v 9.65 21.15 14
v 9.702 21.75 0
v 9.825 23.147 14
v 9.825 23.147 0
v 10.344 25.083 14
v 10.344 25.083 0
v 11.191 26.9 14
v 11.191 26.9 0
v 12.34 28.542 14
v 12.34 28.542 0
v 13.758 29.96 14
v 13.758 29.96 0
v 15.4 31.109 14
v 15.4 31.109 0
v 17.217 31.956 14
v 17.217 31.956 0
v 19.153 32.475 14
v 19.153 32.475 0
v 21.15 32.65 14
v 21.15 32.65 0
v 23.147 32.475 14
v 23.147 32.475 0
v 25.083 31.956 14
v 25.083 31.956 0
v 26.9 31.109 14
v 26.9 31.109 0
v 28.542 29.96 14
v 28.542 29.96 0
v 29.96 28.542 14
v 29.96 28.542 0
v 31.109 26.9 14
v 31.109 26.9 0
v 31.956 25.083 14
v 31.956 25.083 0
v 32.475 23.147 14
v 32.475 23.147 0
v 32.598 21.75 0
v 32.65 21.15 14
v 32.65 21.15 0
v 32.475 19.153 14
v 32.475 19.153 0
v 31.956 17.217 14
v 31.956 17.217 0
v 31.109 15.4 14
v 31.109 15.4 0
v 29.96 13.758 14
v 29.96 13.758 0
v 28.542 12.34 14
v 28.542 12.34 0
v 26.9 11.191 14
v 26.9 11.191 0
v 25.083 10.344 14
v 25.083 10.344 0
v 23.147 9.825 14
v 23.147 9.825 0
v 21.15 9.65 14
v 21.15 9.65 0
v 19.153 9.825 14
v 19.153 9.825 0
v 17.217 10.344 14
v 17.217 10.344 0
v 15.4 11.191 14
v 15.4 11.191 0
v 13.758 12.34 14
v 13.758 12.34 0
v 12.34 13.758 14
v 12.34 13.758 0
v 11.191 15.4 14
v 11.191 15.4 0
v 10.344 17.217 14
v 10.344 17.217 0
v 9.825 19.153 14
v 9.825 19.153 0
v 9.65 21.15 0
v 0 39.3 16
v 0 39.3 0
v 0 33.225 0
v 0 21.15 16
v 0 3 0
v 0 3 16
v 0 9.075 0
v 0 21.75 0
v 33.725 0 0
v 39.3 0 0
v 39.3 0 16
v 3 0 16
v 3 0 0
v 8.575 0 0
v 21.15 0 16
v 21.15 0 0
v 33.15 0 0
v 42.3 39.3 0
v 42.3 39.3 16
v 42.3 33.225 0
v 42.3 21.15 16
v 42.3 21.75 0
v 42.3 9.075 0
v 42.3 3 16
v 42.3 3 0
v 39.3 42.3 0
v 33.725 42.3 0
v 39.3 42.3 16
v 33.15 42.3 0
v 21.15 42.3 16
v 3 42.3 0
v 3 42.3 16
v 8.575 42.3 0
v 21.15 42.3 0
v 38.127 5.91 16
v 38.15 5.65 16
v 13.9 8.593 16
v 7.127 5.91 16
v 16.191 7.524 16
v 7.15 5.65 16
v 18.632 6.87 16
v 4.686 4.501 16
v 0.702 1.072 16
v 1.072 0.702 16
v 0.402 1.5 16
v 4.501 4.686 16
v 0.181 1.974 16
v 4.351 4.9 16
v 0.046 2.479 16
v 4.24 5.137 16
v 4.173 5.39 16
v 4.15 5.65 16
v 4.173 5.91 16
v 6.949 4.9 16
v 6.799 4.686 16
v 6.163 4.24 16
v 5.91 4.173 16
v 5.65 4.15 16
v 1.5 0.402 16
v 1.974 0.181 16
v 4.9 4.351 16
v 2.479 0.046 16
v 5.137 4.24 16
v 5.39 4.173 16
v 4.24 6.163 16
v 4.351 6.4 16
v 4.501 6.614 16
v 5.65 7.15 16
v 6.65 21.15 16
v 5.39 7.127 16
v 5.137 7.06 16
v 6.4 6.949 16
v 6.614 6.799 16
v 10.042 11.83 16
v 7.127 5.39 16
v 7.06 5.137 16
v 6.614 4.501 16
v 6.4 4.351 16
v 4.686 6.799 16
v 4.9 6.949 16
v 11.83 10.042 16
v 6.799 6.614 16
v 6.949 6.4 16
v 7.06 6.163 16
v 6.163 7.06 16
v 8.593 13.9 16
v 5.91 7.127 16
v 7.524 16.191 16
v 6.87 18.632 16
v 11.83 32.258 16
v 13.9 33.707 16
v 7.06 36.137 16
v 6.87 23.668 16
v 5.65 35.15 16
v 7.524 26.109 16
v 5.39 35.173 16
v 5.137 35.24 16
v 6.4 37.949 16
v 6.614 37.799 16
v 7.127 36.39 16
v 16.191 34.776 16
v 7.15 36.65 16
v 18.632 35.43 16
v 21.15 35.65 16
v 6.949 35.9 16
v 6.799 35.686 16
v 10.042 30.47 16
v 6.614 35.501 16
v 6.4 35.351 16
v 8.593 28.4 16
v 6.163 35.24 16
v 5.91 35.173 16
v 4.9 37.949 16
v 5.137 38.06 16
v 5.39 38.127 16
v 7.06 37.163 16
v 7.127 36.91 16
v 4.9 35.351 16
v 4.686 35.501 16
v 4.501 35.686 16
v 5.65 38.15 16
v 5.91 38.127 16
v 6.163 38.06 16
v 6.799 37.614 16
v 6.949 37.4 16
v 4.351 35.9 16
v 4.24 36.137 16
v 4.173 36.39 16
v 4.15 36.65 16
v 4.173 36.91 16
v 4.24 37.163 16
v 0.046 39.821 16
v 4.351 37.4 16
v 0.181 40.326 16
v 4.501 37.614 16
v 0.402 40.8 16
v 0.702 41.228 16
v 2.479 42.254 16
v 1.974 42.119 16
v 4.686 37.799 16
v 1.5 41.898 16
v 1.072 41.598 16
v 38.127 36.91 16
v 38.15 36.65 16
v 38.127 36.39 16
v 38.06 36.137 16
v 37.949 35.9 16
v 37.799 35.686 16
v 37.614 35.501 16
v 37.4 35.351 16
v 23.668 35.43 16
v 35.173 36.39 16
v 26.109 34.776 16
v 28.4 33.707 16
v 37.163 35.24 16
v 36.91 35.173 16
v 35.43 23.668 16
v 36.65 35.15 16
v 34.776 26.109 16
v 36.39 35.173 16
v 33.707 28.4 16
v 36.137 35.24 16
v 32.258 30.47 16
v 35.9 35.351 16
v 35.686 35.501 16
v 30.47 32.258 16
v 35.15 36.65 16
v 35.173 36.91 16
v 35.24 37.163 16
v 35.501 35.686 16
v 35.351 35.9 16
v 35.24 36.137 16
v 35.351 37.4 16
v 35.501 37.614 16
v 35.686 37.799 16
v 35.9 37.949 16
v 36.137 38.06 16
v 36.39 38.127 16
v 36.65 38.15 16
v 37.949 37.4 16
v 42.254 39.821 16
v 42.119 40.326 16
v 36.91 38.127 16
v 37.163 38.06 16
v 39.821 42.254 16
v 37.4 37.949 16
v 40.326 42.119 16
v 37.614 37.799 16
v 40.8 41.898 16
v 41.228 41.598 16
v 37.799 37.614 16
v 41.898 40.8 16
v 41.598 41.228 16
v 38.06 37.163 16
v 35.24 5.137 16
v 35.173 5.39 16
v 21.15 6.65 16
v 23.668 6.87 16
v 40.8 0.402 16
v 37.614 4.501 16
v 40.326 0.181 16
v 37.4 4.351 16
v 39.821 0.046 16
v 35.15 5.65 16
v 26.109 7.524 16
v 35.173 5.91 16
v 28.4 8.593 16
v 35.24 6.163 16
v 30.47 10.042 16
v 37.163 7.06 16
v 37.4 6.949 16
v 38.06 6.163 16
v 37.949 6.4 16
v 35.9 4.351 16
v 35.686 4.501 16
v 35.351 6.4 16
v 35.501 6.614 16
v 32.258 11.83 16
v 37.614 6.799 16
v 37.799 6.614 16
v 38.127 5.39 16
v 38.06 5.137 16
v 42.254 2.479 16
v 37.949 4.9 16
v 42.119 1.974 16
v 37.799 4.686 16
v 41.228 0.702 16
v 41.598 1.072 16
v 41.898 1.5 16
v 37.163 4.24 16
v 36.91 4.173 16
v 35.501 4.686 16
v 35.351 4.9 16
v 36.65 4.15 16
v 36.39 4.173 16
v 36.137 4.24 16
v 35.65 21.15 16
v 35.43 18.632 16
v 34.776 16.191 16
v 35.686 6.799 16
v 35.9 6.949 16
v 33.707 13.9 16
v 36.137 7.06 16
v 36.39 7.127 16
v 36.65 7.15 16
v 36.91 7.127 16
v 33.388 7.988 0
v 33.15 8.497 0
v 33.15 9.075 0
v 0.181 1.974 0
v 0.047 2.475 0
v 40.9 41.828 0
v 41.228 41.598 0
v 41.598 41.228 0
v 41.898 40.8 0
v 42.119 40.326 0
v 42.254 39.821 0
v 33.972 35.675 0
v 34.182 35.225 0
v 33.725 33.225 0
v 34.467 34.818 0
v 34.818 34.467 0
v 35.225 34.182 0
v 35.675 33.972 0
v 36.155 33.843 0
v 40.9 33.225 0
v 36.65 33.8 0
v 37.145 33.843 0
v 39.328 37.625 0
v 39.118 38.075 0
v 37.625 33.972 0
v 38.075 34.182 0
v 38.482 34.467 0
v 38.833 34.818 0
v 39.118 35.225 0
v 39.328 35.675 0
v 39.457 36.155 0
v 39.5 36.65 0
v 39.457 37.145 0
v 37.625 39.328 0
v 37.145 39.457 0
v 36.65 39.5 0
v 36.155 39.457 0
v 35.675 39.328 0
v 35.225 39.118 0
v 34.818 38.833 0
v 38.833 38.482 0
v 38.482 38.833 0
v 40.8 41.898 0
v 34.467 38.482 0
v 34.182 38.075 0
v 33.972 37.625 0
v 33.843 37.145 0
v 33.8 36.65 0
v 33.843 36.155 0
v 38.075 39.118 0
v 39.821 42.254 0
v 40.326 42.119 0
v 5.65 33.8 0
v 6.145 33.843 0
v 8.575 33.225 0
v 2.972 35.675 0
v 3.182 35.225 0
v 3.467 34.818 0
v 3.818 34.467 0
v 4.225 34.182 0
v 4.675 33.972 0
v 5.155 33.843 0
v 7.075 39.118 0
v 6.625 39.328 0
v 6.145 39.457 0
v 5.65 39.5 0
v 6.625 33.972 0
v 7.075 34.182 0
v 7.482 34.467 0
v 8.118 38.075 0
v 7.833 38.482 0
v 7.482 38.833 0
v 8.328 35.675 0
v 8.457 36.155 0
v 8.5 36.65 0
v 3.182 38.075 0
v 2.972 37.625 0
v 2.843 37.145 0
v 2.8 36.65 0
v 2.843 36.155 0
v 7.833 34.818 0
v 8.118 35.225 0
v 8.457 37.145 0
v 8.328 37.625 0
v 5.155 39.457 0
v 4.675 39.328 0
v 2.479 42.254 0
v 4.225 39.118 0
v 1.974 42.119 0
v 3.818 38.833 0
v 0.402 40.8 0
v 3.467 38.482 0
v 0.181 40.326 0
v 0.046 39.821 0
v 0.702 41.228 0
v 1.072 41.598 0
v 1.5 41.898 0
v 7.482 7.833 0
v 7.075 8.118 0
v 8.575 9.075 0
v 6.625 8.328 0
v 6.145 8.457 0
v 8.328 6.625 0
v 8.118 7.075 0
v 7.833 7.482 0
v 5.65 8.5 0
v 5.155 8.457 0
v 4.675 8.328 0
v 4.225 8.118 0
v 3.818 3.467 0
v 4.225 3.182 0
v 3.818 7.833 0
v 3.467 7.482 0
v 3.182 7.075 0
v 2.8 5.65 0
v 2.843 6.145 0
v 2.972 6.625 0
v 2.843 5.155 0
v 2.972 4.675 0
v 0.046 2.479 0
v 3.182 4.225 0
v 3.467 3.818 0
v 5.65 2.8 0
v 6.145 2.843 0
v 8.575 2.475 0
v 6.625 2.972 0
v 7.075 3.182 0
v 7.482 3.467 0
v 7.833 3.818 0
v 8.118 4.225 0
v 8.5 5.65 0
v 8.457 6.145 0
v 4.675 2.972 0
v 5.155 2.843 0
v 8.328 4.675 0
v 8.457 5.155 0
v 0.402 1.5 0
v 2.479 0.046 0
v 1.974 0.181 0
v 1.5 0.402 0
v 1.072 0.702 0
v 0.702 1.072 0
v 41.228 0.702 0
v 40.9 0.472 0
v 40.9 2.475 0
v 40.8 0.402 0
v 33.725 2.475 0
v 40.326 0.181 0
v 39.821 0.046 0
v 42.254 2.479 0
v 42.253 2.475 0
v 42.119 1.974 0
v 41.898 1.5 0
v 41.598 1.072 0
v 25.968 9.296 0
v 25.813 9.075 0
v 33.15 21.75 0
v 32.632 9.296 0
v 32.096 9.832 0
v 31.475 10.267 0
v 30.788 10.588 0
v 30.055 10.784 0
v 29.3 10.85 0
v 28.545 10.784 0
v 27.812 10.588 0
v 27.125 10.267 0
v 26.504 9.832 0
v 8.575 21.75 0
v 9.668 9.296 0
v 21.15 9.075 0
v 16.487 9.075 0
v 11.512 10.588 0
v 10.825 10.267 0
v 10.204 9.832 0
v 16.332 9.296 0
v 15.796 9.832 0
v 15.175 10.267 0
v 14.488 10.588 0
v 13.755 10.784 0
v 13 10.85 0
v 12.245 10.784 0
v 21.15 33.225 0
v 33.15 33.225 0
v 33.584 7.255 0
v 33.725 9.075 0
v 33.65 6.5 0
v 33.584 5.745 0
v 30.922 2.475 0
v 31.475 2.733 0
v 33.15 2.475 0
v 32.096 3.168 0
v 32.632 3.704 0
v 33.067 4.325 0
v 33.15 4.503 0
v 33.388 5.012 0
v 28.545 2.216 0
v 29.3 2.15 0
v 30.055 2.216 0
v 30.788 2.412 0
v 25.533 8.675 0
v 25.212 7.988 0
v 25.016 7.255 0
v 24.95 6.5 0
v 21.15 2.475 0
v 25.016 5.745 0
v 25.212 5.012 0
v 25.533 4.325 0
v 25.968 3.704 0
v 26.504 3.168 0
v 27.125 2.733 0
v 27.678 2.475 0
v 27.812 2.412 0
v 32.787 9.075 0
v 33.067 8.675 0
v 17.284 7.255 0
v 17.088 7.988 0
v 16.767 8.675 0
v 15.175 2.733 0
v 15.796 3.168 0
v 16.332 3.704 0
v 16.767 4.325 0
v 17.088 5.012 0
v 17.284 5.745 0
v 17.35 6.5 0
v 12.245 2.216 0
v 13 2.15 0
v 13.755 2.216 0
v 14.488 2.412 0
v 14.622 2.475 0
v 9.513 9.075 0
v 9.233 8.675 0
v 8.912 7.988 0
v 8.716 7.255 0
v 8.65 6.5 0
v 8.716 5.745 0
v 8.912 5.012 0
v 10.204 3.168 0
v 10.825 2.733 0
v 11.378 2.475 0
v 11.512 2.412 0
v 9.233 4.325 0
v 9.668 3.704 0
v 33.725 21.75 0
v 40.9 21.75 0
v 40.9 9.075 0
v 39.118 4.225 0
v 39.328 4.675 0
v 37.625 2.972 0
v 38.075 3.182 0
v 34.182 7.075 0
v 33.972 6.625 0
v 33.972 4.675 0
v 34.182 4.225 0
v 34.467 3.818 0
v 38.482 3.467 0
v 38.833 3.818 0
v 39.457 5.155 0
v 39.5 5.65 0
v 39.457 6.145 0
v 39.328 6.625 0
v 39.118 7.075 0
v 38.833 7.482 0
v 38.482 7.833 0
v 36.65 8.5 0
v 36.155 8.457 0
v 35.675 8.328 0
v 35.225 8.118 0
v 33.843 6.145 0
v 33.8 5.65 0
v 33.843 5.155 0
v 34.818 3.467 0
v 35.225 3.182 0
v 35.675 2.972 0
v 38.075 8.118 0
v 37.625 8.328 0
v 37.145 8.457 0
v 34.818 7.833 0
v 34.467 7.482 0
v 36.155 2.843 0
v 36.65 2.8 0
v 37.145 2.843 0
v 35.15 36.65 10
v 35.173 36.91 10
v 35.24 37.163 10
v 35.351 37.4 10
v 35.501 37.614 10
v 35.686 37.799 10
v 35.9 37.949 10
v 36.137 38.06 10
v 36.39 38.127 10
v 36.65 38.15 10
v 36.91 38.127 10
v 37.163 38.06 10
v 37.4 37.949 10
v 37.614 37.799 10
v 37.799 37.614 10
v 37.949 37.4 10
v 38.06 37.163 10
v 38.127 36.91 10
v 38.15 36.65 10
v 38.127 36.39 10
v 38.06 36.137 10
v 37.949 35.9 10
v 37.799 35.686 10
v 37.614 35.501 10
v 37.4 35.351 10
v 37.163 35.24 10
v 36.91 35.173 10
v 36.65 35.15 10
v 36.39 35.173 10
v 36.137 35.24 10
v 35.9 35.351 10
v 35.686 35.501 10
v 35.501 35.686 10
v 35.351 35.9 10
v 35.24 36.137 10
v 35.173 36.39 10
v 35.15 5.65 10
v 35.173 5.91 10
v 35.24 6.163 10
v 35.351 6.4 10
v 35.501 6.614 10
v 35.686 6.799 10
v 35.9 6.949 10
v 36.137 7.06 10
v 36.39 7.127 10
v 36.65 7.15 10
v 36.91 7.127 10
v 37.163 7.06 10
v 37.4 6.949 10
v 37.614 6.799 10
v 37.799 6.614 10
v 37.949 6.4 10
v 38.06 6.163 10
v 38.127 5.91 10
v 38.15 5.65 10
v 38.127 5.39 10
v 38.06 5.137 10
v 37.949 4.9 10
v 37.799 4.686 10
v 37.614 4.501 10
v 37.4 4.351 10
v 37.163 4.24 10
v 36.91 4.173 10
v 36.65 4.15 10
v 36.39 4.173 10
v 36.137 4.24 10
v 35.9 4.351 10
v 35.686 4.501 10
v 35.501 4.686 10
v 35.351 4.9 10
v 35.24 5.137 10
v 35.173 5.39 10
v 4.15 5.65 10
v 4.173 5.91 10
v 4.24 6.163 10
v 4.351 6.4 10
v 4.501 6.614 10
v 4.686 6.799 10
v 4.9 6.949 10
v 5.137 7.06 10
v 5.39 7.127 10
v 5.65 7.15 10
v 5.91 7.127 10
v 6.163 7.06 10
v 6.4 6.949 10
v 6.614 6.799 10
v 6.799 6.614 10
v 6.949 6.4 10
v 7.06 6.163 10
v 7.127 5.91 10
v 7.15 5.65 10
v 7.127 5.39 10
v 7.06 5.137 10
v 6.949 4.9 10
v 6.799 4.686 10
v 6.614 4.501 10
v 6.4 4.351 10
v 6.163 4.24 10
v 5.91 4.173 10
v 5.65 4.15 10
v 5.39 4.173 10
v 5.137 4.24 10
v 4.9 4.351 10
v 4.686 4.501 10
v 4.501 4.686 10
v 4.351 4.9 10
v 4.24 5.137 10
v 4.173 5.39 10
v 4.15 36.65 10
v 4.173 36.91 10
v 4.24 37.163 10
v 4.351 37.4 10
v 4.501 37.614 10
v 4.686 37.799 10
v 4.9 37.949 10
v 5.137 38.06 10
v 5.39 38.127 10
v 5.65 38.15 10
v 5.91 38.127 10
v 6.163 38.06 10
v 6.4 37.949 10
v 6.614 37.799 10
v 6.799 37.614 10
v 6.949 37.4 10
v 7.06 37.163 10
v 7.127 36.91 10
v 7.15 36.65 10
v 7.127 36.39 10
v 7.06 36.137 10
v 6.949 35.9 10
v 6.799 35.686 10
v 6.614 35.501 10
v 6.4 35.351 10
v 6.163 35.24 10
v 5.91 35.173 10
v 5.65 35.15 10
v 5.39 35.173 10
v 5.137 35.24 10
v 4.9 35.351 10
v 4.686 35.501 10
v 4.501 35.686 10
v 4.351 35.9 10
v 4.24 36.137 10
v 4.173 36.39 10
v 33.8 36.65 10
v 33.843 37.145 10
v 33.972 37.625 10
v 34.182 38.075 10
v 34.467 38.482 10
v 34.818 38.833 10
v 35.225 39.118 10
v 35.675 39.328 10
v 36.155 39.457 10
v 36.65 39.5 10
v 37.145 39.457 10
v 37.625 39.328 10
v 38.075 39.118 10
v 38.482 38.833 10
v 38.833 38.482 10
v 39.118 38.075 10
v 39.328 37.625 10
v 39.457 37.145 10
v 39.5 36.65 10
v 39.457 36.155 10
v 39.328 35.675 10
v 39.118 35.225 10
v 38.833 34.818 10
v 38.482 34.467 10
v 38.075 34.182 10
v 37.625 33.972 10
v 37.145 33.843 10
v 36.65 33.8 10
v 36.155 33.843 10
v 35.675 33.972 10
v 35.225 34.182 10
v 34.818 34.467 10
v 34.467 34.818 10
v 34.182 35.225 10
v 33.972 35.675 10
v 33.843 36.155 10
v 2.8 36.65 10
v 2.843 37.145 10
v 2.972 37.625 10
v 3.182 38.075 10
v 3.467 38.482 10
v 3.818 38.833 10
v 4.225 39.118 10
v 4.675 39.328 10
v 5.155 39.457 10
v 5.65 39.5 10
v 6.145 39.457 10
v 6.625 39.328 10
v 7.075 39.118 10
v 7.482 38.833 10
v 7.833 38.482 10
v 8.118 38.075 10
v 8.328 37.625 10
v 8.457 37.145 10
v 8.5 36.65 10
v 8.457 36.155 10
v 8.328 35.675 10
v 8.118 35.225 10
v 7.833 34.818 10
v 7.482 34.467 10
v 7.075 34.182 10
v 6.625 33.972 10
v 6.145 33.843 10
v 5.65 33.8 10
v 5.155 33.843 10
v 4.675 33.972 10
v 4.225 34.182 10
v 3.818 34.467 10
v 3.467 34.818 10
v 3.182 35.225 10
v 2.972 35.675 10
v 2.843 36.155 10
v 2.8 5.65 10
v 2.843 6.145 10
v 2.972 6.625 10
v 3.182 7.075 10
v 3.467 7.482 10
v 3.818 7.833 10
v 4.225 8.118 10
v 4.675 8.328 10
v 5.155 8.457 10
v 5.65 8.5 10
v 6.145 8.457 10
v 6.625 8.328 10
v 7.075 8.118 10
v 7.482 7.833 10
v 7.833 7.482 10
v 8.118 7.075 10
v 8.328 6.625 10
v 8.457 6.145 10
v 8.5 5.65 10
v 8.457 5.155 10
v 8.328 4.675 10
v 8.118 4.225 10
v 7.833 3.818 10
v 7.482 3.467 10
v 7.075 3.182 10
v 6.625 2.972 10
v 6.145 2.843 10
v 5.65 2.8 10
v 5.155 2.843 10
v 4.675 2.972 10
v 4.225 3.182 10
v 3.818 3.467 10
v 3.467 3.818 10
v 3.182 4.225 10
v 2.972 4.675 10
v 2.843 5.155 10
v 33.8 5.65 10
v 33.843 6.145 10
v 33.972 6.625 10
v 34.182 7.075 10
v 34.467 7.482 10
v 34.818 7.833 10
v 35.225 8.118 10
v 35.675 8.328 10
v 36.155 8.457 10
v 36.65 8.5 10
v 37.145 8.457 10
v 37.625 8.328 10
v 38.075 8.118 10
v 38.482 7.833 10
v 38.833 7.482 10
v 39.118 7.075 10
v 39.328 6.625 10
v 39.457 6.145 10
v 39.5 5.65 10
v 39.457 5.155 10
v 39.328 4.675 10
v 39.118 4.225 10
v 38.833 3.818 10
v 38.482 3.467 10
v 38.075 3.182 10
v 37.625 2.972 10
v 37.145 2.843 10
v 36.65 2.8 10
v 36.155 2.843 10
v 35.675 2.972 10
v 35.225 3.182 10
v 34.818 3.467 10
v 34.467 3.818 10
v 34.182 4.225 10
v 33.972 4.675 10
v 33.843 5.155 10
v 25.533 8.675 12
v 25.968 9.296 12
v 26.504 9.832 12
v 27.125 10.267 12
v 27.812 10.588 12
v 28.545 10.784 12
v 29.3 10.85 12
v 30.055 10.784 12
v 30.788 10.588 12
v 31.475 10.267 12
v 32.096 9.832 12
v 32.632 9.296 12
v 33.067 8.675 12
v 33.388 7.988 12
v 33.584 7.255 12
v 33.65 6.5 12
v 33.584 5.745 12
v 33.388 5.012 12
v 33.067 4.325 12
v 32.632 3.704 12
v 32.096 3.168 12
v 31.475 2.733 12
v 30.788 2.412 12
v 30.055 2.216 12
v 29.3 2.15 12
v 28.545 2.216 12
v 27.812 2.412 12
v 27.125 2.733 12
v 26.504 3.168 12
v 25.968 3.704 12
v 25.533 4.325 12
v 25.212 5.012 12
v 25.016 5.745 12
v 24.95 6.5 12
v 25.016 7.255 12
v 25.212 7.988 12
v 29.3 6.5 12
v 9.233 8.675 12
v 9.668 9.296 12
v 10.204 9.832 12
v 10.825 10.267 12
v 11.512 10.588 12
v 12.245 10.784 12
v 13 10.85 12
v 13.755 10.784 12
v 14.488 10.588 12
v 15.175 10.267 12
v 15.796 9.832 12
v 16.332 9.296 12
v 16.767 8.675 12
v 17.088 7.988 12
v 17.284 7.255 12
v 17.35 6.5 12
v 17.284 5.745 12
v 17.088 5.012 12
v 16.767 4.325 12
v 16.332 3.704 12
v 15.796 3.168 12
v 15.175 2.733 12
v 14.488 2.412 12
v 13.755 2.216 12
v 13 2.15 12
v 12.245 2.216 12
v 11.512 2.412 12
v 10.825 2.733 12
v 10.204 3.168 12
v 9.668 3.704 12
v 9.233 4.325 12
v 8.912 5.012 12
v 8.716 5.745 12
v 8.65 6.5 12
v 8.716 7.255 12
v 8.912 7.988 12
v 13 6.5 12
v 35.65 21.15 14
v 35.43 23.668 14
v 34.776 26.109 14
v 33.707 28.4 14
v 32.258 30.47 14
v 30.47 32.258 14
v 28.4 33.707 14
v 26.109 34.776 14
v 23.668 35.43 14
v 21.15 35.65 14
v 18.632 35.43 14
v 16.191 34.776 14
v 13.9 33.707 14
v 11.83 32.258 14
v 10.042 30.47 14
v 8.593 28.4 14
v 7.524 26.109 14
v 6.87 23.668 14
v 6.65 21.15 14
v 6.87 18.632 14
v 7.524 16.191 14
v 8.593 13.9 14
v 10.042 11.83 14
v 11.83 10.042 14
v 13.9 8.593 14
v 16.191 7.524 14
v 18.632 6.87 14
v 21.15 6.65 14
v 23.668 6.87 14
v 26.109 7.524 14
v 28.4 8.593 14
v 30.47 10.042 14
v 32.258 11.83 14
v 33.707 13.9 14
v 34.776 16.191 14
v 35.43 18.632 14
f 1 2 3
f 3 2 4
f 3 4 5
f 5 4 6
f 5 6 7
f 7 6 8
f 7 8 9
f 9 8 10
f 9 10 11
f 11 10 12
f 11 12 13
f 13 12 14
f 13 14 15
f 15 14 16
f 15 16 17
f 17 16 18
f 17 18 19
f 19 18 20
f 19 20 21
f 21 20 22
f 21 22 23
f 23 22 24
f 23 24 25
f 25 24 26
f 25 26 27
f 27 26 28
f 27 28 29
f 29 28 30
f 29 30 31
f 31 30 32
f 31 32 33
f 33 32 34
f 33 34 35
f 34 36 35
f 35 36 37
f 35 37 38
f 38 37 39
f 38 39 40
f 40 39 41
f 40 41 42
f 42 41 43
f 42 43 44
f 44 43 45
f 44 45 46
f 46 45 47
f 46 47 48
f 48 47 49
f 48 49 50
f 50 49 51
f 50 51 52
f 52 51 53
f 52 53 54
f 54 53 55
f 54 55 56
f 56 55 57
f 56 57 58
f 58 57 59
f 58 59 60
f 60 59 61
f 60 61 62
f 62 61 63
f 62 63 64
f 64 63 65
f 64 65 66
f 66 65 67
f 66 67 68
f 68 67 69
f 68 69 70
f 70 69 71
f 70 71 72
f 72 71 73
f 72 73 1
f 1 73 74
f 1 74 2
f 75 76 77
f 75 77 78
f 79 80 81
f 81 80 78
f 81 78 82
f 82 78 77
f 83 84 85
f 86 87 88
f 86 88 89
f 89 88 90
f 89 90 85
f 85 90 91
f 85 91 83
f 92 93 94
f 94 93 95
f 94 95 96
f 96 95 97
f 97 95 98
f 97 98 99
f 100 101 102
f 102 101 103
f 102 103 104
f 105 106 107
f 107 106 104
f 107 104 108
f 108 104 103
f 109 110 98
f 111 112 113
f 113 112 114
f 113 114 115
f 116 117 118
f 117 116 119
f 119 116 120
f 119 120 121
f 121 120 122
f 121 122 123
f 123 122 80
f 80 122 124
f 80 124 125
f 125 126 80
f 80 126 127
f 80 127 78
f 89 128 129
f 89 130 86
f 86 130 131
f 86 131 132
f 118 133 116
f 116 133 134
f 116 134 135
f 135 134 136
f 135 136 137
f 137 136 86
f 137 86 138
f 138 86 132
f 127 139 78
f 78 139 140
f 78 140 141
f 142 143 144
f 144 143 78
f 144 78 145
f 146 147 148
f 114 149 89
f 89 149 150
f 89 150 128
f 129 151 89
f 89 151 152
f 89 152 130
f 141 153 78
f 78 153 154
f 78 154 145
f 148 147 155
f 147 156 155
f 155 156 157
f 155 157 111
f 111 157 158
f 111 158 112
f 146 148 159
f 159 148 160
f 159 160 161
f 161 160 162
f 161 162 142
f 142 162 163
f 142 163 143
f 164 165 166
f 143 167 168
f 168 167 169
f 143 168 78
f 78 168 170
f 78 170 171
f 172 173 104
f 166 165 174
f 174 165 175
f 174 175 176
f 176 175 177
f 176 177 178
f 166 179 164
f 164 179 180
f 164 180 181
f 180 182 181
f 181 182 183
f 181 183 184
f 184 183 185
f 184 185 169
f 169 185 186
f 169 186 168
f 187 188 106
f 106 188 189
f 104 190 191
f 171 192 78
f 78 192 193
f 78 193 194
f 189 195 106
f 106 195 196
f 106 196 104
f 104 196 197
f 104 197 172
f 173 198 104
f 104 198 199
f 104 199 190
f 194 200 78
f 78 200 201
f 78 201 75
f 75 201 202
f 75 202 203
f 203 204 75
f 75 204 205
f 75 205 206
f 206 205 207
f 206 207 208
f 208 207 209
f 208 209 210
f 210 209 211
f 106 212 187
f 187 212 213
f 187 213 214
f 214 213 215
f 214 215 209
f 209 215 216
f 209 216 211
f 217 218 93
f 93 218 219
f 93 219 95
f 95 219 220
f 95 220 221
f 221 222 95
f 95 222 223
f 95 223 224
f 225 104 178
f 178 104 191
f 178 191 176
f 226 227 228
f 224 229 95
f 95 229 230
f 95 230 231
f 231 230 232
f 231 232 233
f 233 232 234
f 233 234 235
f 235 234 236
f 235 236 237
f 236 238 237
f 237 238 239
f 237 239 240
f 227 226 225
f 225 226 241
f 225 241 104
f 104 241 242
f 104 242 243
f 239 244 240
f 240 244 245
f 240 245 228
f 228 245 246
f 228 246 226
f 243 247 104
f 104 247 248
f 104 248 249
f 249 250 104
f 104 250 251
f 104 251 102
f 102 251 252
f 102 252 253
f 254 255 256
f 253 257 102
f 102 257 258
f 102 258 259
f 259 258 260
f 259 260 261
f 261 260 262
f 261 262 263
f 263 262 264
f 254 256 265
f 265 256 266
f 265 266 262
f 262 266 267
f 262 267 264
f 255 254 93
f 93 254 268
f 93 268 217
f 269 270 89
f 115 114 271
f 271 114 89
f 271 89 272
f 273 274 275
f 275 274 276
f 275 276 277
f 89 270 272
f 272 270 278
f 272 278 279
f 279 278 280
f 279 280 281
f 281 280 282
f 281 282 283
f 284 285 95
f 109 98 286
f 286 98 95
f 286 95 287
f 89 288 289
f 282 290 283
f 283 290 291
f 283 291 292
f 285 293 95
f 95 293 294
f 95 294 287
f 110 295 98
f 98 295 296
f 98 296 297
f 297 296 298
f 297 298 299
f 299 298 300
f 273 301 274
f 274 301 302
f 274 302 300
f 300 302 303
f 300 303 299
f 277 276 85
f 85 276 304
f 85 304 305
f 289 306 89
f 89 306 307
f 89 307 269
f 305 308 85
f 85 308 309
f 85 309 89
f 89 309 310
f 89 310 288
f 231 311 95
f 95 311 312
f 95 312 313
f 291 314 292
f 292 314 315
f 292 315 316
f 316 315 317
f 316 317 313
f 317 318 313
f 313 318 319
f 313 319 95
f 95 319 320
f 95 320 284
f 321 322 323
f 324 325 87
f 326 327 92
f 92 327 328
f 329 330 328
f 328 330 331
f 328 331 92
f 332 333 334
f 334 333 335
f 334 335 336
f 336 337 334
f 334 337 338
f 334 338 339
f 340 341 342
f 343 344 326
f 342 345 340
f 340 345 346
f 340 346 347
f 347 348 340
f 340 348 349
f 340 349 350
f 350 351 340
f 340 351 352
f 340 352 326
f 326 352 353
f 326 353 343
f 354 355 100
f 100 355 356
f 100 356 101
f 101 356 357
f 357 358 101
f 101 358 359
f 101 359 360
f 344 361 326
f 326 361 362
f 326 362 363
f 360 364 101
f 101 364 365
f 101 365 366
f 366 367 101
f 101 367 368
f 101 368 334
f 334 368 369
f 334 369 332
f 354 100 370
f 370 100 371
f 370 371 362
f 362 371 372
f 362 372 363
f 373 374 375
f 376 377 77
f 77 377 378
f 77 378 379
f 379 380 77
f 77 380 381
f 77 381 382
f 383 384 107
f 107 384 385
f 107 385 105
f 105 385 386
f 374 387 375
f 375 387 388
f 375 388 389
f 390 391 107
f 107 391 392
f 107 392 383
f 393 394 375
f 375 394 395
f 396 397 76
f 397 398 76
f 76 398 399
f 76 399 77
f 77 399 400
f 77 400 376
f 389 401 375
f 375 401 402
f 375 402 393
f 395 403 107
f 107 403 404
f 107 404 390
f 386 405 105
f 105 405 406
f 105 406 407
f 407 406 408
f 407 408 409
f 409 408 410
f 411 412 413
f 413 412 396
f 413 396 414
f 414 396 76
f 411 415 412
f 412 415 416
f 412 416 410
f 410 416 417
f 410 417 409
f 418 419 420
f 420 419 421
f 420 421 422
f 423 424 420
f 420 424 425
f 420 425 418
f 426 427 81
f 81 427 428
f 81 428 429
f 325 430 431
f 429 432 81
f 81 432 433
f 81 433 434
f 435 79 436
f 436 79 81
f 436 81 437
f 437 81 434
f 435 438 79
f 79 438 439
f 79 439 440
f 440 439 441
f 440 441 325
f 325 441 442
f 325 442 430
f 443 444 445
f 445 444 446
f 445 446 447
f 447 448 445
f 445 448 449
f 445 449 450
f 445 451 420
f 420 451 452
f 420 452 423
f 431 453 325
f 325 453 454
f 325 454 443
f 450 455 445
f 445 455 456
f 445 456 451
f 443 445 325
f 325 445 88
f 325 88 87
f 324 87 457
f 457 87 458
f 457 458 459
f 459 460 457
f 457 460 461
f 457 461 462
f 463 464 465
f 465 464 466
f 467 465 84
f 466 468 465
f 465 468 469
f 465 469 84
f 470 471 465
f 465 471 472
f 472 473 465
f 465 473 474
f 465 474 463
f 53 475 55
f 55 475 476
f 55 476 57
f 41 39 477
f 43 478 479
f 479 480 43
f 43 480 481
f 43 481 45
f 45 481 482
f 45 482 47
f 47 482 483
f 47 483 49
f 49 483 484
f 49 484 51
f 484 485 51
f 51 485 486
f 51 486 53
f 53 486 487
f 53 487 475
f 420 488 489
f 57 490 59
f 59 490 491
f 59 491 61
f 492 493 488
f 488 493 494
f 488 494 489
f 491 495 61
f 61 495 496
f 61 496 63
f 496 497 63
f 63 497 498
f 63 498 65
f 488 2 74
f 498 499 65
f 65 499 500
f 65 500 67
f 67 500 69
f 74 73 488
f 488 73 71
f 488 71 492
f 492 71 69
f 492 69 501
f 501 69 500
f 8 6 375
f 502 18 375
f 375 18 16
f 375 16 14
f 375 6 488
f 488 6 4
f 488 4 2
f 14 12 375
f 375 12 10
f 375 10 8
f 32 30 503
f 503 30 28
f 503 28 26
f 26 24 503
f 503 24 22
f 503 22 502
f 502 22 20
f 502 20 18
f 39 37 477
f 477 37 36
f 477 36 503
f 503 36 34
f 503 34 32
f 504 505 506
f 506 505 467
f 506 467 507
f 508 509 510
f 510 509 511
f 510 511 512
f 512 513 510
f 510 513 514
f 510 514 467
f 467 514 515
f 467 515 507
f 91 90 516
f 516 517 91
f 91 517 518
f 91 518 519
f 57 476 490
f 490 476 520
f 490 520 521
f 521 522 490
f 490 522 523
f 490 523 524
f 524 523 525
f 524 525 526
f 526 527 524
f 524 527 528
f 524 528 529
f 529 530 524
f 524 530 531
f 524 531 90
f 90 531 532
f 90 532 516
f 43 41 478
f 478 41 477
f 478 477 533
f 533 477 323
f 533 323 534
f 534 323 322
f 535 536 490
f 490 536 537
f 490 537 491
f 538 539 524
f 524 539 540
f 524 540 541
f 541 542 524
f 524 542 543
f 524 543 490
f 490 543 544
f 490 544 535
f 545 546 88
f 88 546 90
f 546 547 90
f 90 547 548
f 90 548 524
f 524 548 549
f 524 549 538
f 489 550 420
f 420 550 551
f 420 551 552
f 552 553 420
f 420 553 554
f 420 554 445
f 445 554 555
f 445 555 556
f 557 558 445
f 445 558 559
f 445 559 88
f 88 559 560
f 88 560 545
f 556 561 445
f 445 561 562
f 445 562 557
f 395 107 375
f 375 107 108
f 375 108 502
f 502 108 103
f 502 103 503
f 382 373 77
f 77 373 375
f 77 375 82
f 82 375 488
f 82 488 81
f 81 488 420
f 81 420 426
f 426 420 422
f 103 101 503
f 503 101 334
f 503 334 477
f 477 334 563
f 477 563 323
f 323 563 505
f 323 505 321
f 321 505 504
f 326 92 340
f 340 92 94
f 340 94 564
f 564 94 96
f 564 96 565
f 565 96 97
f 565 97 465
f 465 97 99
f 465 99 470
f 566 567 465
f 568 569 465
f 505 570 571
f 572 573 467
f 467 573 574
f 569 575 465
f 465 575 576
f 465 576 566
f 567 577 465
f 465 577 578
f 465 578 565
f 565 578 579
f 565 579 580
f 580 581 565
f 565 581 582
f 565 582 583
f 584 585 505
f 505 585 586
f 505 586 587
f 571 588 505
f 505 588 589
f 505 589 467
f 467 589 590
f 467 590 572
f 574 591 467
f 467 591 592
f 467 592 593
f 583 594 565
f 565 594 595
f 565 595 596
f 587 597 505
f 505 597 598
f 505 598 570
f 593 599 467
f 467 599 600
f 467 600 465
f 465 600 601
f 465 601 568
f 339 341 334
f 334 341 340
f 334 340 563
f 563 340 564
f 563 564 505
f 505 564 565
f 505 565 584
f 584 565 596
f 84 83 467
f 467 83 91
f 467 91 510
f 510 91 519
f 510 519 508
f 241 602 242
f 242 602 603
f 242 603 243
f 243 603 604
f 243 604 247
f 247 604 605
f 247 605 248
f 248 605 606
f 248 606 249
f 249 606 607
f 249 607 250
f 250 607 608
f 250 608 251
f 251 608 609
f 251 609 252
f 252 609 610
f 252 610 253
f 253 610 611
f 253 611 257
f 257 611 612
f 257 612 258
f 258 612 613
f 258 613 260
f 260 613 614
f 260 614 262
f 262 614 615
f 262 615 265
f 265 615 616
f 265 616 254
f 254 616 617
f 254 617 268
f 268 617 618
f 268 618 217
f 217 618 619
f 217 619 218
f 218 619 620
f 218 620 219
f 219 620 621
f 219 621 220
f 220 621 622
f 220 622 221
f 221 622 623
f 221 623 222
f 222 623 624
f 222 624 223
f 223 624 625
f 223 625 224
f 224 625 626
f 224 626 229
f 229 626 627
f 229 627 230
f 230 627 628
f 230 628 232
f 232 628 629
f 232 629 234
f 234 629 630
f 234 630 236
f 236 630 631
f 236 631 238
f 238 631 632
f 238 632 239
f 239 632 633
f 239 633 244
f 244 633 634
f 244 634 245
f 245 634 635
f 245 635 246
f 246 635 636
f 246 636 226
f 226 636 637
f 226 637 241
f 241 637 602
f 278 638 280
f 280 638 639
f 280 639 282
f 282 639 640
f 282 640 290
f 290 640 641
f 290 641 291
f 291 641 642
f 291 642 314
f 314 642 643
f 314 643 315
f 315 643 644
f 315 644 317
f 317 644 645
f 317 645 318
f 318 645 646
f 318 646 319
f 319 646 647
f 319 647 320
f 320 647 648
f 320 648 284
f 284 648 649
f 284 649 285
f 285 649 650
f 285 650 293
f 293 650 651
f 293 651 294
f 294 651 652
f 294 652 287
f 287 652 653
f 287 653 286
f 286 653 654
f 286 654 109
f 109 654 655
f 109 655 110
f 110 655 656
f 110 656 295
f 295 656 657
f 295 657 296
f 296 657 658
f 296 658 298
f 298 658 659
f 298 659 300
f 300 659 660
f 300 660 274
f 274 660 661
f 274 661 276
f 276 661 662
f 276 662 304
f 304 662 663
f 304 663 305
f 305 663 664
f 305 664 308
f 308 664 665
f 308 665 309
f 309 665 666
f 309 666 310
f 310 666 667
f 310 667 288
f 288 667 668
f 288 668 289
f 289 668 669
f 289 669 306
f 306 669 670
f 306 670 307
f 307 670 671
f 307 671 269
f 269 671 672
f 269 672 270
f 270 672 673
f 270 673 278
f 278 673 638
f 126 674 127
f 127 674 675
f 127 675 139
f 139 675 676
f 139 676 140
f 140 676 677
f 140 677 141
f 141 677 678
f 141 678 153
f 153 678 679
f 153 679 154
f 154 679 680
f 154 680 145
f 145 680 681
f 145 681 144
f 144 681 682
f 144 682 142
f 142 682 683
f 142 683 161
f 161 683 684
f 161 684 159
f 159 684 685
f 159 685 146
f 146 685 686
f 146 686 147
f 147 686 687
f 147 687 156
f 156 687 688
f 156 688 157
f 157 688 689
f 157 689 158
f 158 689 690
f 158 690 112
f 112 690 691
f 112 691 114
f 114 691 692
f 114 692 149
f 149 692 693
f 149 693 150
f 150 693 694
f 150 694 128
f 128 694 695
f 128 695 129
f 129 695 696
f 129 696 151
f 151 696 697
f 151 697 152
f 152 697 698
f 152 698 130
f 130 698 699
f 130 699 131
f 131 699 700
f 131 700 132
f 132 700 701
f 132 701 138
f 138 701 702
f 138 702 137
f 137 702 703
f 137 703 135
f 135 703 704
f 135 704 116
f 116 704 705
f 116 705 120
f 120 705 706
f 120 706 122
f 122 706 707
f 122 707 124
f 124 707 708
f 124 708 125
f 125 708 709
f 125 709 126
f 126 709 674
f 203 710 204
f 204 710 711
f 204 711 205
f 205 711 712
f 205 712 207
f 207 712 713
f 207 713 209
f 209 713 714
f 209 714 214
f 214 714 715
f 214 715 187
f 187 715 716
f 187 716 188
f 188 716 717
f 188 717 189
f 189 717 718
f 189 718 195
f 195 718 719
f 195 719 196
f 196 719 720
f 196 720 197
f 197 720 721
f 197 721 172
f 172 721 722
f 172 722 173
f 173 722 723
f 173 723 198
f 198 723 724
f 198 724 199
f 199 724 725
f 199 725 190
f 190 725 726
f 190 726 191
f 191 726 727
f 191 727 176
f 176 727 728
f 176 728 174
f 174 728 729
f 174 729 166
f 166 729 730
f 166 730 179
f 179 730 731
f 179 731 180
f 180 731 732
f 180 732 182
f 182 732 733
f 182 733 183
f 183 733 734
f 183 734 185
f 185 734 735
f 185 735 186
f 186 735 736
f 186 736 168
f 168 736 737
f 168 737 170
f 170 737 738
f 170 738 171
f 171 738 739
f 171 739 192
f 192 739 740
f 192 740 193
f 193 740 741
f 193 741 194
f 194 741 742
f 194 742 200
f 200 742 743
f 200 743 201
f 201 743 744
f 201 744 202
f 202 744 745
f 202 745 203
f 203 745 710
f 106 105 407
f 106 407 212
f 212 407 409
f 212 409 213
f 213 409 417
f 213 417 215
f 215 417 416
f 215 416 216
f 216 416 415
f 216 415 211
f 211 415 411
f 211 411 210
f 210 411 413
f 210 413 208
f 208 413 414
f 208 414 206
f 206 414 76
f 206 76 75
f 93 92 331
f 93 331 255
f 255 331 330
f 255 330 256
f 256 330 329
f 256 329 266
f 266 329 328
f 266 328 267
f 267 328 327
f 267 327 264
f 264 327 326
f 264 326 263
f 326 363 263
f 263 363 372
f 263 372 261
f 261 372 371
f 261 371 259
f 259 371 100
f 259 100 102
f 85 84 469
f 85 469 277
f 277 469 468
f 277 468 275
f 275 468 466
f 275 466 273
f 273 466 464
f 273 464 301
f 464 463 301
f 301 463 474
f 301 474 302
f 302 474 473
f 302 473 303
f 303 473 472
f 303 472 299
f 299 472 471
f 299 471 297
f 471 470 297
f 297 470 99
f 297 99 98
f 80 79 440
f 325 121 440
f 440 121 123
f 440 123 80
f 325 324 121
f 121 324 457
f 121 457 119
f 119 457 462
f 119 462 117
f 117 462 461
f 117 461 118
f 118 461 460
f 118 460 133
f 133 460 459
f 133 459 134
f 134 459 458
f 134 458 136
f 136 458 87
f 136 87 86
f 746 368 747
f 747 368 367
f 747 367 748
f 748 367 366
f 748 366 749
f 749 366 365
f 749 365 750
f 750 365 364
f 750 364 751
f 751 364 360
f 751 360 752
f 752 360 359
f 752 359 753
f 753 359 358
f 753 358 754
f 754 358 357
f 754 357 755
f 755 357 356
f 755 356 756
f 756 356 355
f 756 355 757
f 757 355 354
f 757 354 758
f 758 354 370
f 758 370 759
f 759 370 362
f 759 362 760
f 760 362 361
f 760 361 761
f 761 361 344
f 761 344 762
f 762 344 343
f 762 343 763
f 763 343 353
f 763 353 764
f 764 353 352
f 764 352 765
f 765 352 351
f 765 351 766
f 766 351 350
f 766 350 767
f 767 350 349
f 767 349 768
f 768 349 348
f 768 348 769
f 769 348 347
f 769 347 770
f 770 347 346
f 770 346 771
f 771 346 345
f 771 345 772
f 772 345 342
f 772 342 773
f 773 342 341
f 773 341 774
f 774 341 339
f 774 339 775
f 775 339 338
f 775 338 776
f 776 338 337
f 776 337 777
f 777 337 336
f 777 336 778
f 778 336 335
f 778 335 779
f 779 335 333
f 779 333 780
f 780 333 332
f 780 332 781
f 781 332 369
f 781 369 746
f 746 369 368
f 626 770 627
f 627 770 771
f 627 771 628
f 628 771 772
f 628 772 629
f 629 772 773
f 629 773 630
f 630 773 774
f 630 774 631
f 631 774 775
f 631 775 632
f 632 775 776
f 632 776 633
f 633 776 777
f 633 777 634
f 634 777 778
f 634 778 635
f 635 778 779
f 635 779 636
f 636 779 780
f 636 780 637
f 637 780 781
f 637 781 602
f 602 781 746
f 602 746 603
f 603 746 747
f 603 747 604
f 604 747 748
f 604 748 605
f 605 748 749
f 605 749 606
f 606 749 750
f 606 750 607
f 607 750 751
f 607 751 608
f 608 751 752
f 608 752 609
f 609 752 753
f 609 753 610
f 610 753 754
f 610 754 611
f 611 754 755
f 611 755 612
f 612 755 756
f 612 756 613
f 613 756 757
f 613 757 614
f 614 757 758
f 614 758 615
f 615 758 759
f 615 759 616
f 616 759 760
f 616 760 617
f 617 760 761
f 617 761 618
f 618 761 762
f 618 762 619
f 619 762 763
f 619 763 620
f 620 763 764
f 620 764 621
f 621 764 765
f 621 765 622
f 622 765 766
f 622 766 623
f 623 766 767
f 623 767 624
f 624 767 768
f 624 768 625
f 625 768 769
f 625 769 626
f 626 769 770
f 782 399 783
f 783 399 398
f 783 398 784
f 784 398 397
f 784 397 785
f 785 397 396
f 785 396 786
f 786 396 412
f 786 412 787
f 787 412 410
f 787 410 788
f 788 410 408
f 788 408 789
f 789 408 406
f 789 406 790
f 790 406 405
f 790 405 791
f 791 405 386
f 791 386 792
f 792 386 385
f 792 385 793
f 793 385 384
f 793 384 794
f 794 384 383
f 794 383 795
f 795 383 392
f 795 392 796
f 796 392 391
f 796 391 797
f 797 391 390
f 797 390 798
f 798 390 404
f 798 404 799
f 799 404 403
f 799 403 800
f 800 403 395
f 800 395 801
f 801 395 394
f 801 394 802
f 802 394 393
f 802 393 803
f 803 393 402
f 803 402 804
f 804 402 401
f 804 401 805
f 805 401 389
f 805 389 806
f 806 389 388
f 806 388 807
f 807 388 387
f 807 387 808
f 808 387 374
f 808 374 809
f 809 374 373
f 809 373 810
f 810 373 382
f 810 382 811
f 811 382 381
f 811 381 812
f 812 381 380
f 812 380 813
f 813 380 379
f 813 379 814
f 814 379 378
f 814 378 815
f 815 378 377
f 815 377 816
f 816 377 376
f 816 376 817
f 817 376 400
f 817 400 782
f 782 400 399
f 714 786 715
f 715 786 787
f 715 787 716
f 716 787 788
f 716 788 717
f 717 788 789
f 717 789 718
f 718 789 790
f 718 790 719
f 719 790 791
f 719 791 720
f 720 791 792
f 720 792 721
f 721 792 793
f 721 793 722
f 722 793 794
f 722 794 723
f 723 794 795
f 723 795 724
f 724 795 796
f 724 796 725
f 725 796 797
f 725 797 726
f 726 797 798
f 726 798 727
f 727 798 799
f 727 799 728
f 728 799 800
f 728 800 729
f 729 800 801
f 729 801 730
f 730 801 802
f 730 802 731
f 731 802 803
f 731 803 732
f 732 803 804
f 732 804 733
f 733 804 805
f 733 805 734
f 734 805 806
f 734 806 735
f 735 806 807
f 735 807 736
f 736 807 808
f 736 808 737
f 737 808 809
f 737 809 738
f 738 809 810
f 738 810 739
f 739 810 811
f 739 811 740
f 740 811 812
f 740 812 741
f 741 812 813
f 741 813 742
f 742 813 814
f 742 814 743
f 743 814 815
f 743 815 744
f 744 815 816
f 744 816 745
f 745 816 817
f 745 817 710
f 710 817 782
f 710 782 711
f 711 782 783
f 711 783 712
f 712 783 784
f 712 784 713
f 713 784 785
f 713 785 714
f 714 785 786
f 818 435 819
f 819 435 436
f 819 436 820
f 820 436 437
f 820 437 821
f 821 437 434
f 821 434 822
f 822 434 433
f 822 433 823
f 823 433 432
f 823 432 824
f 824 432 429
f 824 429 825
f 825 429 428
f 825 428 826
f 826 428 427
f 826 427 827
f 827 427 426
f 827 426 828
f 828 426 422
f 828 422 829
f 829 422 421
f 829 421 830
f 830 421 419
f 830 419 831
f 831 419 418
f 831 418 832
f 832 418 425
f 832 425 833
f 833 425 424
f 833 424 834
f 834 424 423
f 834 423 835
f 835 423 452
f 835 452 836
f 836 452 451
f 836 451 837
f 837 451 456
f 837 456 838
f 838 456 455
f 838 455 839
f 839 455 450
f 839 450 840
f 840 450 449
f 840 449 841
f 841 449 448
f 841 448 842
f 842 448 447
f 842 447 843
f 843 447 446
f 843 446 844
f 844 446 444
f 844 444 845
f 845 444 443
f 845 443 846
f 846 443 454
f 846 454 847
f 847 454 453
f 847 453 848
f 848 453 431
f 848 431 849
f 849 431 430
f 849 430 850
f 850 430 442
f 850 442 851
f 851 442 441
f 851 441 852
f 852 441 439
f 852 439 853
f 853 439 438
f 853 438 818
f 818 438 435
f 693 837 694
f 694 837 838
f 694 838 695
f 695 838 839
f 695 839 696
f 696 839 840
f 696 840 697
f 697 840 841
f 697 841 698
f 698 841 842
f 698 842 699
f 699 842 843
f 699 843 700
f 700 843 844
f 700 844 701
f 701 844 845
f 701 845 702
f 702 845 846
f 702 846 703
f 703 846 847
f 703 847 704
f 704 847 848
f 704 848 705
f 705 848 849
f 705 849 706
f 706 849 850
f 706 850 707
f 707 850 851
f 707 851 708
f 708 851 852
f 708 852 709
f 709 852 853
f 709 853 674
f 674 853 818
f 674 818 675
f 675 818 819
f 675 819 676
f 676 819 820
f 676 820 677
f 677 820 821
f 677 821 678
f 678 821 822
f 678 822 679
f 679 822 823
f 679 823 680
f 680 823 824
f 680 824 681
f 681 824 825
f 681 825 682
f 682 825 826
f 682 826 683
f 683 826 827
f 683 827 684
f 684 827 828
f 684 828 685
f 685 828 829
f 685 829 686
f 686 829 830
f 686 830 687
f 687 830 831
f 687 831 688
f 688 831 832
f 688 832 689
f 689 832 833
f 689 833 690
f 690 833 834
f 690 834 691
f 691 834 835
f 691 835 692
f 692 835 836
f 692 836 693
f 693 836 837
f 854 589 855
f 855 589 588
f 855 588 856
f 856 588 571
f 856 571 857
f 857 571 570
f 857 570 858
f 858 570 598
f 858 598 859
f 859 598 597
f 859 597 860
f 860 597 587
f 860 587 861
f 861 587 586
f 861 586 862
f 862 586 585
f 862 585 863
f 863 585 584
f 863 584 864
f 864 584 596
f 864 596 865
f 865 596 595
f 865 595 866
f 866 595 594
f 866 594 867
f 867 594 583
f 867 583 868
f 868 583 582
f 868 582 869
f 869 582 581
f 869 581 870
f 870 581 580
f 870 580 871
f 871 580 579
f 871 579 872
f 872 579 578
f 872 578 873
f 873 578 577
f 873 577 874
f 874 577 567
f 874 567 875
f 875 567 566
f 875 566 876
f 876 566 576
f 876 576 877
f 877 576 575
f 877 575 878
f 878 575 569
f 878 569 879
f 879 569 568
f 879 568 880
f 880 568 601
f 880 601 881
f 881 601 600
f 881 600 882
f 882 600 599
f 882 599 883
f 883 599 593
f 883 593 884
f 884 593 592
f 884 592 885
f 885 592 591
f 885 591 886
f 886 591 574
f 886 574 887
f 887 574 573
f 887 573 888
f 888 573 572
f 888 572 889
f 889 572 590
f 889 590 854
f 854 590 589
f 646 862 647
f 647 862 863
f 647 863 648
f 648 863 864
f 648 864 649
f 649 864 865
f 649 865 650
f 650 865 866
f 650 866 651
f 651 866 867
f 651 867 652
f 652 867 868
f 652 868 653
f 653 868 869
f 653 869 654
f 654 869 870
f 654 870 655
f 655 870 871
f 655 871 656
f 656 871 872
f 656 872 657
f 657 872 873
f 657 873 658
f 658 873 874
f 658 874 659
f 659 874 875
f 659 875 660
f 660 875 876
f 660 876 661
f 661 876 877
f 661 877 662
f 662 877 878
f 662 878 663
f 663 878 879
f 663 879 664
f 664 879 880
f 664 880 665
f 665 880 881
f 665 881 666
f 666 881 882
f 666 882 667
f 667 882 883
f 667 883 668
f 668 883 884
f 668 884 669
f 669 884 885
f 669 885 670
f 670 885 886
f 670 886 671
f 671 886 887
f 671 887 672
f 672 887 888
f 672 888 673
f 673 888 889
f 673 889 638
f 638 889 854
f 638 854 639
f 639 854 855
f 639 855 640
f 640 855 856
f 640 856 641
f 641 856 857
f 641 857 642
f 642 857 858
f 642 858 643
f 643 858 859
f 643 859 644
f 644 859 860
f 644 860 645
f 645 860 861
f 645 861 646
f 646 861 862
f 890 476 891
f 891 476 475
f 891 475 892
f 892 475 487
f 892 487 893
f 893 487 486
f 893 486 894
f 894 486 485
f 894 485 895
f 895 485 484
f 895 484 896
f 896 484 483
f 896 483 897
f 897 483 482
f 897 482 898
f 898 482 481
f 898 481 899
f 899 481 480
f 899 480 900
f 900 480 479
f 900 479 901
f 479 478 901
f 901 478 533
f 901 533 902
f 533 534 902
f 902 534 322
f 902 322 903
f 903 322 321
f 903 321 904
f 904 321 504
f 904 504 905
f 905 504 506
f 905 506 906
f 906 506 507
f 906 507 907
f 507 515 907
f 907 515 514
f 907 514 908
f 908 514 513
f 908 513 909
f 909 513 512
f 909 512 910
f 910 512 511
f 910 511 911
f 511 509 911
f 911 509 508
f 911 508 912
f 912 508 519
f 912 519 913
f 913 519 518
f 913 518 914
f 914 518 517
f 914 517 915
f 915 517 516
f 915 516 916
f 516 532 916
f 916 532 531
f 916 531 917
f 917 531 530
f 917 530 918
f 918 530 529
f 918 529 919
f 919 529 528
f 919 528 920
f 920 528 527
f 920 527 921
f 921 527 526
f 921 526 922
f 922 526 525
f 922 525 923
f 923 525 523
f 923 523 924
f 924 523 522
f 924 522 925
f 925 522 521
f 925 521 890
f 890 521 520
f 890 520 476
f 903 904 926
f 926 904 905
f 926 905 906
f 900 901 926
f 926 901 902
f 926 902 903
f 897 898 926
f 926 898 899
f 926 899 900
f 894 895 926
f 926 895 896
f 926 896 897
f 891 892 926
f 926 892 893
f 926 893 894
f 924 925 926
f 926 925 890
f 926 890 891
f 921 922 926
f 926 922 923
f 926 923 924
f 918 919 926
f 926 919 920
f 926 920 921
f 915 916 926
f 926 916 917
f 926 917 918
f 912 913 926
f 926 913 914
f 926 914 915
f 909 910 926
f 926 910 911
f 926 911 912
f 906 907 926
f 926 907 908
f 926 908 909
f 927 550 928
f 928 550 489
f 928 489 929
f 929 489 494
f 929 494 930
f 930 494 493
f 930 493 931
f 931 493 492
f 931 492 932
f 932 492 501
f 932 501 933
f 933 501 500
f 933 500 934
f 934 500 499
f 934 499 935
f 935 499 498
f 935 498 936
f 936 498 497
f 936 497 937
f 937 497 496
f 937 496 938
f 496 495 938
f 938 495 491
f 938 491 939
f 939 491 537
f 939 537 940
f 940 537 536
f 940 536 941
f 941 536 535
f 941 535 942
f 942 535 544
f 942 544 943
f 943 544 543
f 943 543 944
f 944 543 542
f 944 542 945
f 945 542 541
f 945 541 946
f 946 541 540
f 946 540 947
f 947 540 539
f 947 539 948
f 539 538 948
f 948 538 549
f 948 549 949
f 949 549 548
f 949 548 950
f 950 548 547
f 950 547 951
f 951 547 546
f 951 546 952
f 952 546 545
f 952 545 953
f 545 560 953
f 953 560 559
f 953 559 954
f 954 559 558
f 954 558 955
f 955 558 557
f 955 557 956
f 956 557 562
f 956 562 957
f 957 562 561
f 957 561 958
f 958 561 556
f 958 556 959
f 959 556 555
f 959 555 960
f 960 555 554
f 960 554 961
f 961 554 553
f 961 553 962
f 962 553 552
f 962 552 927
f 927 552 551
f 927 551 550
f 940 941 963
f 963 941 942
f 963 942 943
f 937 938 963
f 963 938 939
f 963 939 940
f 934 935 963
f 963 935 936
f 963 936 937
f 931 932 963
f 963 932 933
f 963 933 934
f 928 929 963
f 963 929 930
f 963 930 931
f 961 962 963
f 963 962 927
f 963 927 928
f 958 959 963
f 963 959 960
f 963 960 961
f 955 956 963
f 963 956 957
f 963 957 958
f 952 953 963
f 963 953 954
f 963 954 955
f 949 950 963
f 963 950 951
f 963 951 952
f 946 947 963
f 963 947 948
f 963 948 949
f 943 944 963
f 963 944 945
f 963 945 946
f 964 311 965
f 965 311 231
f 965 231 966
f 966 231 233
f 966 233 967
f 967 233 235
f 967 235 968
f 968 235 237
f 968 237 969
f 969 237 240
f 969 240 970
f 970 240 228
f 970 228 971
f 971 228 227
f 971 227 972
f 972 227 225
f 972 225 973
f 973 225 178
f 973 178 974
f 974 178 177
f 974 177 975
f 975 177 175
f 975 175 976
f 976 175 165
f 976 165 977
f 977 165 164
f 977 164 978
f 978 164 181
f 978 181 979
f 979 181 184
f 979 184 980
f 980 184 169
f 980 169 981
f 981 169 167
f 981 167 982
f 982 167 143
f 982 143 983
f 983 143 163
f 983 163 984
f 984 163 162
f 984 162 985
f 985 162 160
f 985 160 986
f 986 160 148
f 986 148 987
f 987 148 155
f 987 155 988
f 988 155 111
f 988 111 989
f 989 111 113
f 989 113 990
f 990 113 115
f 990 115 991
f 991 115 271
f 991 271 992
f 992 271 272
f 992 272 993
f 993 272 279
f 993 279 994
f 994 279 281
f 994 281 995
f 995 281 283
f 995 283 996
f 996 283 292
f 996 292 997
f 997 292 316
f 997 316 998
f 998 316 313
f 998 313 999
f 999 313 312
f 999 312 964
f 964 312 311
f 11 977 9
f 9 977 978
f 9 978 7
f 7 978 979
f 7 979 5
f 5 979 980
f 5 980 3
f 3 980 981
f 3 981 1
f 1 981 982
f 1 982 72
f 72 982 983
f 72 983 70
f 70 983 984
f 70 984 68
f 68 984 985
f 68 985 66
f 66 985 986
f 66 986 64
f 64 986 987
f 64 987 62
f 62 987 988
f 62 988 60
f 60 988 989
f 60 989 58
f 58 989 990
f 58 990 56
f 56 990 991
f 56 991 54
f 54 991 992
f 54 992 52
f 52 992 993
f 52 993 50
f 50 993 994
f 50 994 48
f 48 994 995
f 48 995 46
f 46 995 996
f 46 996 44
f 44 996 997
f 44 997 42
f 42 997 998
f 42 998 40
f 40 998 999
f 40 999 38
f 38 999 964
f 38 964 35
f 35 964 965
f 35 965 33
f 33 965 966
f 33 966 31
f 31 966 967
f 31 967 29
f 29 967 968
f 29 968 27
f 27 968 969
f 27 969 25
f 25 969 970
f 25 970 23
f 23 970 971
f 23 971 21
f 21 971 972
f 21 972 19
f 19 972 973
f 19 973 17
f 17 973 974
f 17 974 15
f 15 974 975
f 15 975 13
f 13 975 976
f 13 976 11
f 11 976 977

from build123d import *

# Parameters (mm, degrees)
ESQUISSE1_W             = 42.3
ESQUISSE1_H             = 42.3
BOSS_EXTRU_1_DEPTH      = 16
ESQUISSE2_R             = 1.5
ENL_V_MAT_EXTRU_2_DEPTH = 62.92398566
CONG_1_R                = 3
CONG_2_R                = 3
ESQUISSE4_R             = 11.5
ENL_V_MAT_EXTRU_4_DEPTH = 62.92398566
ESQUISSE5_R             = 2.85
ENL_V_MAT_EXTRU_5_DEPTH = 10
ESQUISSE6_R             = 4.35
ENL_V_MAT_EXTRU_6_DEPTH = 12
ESQUISSE7_R             = 14.5
ENL_V_MAT_EXTRU_7_DEPTH = 2


with BuildPart() as part:
    # Esquisse1 → Boss.-Extru.1 (new body)
    with BuildSketch(Plane.XY):
        with Locations((21.15, 21.15)):
            Rectangle(ESQUISSE1_W, ESQUISSE1_H)
    extrude(amount=BOSS_EXTRU_1_DEPTH)

    # Esquisse2 → Enlèv. mat.-Extru.2 (cut, through all)
    with BuildSketch(Plane.XY):
        with Locations((36.65, 36.65)):
            Circle(ESQUISSE2_R)
        with Locations((5.65, 36.65)):
            Circle(ESQUISSE2_R)
        with Locations((5.65, 5.65)):
            Circle(ESQUISSE2_R)
        with Locations((36.65, 5.65)):
            Circle(ESQUISSE2_R)
    extrude(amount=ENL_V_MAT_EXTRU_2_DEPTH, mode=Mode.SUBTRACT)

    # Congé1
    cong_1_edges = [part.edges().sort_by_distance(p)[0] for p in [
        (0, 42.3, 8),
        (42.3, 42.3, 8),
    ]]
    fillet(cong_1_edges, radius=CONG_1_R)

    # Congé2
    cong_2_edges = [part.edges().sort_by_distance(p)[0] for p in [
        (42.3, 0, 8),
        (0, 0, 8),
    ]]
    fillet(cong_2_edges, radius=CONG_2_R)

    # Esquisse4 → Enlèv. mat.-Extru.4 (cut, through all)
    with BuildSketch(Plane.XY):
        with Locations((21.15, 21.15)):
            Circle(ESQUISSE4_R)
    extrude(amount=ENL_V_MAT_EXTRU_4_DEPTH, mode=Mode.SUBTRACT)

    # Esquisse5 → Enlèv. mat.-Extru.5 (cut)
    with BuildSketch(Plane.XY):
        with Locations((36.65, 36.65)):
            Circle(ESQUISSE5_R)
        with Locations((5.65, 36.65)):
            Circle(ESQUISSE5_R)
        with Locations((5.65, 5.65)):
            Circle(ESQUISSE5_R)
        with Locations((36.65, 5.65)):
            Circle(ESQUISSE5_R)
    extrude(amount=ENL_V_MAT_EXTRU_5_DEPTH, mode=Mode.SUBTRACT)

    # Esquisse6 → Enlèv. mat.-Extru.6 (cut)
    with BuildSketch(Plane.XY):
        with Locations((29.3, 6.5)):
            Circle(ESQUISSE6_R)
        with Locations((13, 6.5)):
            Circle(ESQUISSE6_R)
    extrude(amount=ENL_V_MAT_EXTRU_6_DEPTH, mode=Mode.SUBTRACT)

    # Esquisse7 → Enlèv. mat.-Extru.7 (cut)
    with BuildSketch(Plane.XY.offset(16)):
        with Locations((21.15, 21.15)):
            Circle(ESQUISSE7_R)
    extrude(amount=-ENL_V_MAT_EXTRU_7_DEPTH, mode=Mode.SUBTRACT)


solid = part.part
